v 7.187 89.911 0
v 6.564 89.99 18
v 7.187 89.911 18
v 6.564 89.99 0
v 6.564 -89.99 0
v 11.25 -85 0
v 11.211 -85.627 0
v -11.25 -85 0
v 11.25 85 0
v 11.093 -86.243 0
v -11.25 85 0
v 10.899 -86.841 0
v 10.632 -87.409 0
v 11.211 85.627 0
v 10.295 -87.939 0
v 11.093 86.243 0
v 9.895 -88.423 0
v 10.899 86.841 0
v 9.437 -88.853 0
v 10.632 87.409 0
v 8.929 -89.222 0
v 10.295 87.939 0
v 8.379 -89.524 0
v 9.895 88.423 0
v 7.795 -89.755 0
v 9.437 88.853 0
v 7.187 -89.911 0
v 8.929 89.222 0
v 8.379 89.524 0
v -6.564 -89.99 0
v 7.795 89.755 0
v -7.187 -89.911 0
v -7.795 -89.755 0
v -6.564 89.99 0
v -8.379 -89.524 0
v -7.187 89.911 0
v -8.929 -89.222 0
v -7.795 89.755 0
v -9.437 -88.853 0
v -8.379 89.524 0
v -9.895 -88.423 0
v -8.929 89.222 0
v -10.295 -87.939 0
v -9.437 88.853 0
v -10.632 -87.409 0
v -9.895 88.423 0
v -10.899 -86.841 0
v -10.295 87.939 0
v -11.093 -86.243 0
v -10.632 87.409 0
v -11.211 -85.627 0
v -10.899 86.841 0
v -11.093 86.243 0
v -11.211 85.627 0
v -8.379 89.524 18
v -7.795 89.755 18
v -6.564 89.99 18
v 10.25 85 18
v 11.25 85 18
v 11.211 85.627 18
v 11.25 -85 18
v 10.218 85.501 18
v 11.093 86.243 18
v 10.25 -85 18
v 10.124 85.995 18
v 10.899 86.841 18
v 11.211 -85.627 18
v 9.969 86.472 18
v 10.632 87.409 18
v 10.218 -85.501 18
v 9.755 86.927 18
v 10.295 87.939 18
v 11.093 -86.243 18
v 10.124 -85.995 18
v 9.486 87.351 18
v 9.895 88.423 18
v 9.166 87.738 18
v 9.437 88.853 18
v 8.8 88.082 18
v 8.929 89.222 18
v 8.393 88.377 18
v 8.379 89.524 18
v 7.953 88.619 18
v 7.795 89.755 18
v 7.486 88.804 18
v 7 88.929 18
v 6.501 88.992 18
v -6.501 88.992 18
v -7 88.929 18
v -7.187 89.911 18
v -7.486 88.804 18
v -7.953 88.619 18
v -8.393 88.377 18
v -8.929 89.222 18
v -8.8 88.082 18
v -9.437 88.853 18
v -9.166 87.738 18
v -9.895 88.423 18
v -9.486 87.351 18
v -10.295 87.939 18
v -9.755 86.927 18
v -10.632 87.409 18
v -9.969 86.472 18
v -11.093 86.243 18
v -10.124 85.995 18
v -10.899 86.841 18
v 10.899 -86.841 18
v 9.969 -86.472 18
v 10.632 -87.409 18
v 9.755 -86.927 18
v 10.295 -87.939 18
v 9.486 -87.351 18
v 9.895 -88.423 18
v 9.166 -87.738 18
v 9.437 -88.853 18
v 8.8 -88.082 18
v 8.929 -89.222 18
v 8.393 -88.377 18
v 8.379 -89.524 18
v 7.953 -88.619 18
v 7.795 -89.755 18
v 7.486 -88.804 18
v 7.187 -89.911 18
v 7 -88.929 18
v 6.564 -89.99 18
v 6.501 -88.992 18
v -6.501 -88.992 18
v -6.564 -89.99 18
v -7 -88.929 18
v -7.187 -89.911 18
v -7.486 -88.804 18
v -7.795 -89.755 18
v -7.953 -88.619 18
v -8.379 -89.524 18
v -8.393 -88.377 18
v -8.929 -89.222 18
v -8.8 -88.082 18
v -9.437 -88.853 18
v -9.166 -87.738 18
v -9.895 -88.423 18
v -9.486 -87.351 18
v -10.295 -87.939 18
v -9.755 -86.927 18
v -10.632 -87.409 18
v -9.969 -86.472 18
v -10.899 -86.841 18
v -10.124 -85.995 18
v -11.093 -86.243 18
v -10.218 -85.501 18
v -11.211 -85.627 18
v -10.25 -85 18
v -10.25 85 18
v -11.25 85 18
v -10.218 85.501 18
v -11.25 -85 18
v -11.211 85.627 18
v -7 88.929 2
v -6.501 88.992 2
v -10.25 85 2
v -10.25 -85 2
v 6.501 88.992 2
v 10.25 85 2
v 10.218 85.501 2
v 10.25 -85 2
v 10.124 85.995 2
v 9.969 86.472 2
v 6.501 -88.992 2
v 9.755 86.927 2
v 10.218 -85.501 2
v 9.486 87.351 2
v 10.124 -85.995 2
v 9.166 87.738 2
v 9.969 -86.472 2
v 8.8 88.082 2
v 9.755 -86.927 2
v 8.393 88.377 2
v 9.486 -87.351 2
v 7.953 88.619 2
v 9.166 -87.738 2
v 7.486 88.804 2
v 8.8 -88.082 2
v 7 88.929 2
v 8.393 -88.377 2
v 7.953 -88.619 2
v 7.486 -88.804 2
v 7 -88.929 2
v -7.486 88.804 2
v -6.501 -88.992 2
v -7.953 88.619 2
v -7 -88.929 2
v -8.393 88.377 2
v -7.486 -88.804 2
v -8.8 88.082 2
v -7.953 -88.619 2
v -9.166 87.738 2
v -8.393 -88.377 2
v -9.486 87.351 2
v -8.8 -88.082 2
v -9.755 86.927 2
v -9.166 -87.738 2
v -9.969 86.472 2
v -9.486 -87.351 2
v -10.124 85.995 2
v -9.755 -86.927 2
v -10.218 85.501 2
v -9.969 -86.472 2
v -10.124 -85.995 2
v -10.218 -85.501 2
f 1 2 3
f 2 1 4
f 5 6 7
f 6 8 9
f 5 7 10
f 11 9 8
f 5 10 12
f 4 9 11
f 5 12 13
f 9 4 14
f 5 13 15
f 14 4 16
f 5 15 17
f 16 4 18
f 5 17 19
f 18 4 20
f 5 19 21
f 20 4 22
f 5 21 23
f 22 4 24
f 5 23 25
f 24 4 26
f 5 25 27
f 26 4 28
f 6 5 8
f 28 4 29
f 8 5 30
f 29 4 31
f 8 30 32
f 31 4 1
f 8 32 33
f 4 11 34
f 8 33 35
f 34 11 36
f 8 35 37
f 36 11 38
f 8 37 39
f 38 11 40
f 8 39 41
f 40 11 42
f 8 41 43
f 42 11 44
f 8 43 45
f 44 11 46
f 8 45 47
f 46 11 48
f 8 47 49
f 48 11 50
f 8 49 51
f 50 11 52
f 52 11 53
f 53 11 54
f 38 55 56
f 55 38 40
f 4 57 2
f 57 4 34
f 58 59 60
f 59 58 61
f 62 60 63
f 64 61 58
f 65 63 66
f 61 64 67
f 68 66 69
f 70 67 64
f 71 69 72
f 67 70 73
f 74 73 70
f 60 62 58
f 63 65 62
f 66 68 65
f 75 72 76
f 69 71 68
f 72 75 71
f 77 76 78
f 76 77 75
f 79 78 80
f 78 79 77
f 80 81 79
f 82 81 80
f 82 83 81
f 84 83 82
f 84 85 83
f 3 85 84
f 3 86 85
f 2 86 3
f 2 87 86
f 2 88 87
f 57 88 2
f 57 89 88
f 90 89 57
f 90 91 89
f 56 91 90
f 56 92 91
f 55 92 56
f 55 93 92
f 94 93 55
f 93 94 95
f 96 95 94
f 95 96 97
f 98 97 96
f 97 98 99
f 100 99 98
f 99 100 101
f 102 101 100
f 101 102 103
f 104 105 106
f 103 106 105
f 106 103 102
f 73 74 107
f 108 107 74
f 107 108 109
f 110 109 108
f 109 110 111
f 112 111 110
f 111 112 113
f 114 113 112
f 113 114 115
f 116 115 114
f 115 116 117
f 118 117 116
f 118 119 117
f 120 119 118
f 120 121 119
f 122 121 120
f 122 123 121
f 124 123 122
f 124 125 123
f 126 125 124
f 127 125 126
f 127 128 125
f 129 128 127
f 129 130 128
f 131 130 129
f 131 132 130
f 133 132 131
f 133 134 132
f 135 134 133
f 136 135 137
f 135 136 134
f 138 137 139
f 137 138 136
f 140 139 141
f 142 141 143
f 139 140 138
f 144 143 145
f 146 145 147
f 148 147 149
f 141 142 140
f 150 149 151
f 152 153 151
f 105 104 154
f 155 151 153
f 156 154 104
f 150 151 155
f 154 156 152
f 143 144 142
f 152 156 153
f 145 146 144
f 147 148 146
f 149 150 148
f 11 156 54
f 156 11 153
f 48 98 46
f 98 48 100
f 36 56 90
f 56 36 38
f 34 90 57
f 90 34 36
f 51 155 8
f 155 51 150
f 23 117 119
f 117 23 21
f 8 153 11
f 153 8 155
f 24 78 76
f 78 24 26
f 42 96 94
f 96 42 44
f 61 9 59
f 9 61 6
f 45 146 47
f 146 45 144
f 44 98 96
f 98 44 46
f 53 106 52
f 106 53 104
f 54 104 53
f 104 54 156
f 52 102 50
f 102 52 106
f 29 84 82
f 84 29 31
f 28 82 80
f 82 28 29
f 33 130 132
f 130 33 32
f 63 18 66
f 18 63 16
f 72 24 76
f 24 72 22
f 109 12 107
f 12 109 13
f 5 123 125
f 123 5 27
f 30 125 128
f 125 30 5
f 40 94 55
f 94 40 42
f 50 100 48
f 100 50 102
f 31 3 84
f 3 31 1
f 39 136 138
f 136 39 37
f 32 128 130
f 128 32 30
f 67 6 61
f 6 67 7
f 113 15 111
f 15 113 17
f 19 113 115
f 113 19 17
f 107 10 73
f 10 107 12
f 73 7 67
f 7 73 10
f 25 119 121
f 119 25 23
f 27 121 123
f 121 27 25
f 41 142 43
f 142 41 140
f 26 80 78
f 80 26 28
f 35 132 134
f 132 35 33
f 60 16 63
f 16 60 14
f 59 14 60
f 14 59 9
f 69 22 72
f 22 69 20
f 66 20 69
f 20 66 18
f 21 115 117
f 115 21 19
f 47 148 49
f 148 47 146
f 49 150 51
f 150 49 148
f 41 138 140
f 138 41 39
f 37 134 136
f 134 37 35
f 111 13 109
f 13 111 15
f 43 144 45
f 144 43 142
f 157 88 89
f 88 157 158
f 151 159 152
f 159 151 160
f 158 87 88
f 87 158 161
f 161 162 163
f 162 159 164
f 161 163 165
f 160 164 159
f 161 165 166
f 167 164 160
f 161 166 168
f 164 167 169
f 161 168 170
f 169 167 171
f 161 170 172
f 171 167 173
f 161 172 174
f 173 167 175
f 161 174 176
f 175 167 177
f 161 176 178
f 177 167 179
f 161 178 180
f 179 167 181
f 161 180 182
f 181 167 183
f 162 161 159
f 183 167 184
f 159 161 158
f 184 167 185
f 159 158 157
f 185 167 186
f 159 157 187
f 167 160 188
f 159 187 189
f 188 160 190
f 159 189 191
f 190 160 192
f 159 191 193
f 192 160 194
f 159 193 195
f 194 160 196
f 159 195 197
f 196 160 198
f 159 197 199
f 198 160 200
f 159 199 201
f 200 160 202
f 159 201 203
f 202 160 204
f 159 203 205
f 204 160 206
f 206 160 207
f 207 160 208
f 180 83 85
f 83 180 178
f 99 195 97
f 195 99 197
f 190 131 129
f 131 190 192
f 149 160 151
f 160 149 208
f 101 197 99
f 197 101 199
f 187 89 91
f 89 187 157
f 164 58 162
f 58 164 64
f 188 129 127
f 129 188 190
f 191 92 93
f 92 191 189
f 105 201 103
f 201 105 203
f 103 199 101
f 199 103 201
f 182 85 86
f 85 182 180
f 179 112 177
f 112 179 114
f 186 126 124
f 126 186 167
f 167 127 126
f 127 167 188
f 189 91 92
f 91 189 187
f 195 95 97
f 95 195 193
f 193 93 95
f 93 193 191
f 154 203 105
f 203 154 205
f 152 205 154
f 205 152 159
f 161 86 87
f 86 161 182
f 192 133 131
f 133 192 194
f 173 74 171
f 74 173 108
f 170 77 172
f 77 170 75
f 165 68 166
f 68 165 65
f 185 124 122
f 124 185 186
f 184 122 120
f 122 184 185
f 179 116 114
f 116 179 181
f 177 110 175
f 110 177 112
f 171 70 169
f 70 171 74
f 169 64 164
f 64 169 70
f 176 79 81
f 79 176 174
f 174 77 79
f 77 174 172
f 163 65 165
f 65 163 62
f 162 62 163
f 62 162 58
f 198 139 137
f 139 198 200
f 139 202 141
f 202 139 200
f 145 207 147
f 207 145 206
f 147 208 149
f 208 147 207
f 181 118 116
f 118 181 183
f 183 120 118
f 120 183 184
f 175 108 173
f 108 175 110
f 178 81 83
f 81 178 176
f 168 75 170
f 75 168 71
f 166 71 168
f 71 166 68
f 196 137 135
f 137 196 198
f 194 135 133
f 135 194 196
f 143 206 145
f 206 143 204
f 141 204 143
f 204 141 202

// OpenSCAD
$fn = 50;


difference() {
	union() {
		hull() {
			translate(v = [-6.2500000000, 85.0000000000, 0]) {
				cylinder(h = 18, r = 5);
			}
			translate(v = [6.2500000000, 85.0000000000, 0]) {
				cylinder(h = 18, r = 5);
			}
			translate(v = [-6.2500000000, -85.0000000000, 0]) {
				cylinder(h = 18, r = 5);
			}
			translate(v = [6.2500000000, -85.0000000000, 0]) {
				cylinder(h = 18, r = 5);
			}
		}
	}
	union() {
		translate(v = [0, 0, 2]) {
			hull() {
				translate(v = [-6.2500000000, 85.0000000000, 0]) {
					cylinder(h = 16, r = 4);
				}
				translate(v = [6.2500000000, 85.0000000000, 0]) {
					cylinder(h = 16, r = 4);
				}
				translate(v = [-6.2500000000, -85.0000000000, 0]) {
					cylinder(h = 16, r = 4);
				}
				translate(v = [6.2500000000, -85.0000000000, 0]) {
					cylinder(h = 16, r = 4);
				}
			}
		}
	}
}
